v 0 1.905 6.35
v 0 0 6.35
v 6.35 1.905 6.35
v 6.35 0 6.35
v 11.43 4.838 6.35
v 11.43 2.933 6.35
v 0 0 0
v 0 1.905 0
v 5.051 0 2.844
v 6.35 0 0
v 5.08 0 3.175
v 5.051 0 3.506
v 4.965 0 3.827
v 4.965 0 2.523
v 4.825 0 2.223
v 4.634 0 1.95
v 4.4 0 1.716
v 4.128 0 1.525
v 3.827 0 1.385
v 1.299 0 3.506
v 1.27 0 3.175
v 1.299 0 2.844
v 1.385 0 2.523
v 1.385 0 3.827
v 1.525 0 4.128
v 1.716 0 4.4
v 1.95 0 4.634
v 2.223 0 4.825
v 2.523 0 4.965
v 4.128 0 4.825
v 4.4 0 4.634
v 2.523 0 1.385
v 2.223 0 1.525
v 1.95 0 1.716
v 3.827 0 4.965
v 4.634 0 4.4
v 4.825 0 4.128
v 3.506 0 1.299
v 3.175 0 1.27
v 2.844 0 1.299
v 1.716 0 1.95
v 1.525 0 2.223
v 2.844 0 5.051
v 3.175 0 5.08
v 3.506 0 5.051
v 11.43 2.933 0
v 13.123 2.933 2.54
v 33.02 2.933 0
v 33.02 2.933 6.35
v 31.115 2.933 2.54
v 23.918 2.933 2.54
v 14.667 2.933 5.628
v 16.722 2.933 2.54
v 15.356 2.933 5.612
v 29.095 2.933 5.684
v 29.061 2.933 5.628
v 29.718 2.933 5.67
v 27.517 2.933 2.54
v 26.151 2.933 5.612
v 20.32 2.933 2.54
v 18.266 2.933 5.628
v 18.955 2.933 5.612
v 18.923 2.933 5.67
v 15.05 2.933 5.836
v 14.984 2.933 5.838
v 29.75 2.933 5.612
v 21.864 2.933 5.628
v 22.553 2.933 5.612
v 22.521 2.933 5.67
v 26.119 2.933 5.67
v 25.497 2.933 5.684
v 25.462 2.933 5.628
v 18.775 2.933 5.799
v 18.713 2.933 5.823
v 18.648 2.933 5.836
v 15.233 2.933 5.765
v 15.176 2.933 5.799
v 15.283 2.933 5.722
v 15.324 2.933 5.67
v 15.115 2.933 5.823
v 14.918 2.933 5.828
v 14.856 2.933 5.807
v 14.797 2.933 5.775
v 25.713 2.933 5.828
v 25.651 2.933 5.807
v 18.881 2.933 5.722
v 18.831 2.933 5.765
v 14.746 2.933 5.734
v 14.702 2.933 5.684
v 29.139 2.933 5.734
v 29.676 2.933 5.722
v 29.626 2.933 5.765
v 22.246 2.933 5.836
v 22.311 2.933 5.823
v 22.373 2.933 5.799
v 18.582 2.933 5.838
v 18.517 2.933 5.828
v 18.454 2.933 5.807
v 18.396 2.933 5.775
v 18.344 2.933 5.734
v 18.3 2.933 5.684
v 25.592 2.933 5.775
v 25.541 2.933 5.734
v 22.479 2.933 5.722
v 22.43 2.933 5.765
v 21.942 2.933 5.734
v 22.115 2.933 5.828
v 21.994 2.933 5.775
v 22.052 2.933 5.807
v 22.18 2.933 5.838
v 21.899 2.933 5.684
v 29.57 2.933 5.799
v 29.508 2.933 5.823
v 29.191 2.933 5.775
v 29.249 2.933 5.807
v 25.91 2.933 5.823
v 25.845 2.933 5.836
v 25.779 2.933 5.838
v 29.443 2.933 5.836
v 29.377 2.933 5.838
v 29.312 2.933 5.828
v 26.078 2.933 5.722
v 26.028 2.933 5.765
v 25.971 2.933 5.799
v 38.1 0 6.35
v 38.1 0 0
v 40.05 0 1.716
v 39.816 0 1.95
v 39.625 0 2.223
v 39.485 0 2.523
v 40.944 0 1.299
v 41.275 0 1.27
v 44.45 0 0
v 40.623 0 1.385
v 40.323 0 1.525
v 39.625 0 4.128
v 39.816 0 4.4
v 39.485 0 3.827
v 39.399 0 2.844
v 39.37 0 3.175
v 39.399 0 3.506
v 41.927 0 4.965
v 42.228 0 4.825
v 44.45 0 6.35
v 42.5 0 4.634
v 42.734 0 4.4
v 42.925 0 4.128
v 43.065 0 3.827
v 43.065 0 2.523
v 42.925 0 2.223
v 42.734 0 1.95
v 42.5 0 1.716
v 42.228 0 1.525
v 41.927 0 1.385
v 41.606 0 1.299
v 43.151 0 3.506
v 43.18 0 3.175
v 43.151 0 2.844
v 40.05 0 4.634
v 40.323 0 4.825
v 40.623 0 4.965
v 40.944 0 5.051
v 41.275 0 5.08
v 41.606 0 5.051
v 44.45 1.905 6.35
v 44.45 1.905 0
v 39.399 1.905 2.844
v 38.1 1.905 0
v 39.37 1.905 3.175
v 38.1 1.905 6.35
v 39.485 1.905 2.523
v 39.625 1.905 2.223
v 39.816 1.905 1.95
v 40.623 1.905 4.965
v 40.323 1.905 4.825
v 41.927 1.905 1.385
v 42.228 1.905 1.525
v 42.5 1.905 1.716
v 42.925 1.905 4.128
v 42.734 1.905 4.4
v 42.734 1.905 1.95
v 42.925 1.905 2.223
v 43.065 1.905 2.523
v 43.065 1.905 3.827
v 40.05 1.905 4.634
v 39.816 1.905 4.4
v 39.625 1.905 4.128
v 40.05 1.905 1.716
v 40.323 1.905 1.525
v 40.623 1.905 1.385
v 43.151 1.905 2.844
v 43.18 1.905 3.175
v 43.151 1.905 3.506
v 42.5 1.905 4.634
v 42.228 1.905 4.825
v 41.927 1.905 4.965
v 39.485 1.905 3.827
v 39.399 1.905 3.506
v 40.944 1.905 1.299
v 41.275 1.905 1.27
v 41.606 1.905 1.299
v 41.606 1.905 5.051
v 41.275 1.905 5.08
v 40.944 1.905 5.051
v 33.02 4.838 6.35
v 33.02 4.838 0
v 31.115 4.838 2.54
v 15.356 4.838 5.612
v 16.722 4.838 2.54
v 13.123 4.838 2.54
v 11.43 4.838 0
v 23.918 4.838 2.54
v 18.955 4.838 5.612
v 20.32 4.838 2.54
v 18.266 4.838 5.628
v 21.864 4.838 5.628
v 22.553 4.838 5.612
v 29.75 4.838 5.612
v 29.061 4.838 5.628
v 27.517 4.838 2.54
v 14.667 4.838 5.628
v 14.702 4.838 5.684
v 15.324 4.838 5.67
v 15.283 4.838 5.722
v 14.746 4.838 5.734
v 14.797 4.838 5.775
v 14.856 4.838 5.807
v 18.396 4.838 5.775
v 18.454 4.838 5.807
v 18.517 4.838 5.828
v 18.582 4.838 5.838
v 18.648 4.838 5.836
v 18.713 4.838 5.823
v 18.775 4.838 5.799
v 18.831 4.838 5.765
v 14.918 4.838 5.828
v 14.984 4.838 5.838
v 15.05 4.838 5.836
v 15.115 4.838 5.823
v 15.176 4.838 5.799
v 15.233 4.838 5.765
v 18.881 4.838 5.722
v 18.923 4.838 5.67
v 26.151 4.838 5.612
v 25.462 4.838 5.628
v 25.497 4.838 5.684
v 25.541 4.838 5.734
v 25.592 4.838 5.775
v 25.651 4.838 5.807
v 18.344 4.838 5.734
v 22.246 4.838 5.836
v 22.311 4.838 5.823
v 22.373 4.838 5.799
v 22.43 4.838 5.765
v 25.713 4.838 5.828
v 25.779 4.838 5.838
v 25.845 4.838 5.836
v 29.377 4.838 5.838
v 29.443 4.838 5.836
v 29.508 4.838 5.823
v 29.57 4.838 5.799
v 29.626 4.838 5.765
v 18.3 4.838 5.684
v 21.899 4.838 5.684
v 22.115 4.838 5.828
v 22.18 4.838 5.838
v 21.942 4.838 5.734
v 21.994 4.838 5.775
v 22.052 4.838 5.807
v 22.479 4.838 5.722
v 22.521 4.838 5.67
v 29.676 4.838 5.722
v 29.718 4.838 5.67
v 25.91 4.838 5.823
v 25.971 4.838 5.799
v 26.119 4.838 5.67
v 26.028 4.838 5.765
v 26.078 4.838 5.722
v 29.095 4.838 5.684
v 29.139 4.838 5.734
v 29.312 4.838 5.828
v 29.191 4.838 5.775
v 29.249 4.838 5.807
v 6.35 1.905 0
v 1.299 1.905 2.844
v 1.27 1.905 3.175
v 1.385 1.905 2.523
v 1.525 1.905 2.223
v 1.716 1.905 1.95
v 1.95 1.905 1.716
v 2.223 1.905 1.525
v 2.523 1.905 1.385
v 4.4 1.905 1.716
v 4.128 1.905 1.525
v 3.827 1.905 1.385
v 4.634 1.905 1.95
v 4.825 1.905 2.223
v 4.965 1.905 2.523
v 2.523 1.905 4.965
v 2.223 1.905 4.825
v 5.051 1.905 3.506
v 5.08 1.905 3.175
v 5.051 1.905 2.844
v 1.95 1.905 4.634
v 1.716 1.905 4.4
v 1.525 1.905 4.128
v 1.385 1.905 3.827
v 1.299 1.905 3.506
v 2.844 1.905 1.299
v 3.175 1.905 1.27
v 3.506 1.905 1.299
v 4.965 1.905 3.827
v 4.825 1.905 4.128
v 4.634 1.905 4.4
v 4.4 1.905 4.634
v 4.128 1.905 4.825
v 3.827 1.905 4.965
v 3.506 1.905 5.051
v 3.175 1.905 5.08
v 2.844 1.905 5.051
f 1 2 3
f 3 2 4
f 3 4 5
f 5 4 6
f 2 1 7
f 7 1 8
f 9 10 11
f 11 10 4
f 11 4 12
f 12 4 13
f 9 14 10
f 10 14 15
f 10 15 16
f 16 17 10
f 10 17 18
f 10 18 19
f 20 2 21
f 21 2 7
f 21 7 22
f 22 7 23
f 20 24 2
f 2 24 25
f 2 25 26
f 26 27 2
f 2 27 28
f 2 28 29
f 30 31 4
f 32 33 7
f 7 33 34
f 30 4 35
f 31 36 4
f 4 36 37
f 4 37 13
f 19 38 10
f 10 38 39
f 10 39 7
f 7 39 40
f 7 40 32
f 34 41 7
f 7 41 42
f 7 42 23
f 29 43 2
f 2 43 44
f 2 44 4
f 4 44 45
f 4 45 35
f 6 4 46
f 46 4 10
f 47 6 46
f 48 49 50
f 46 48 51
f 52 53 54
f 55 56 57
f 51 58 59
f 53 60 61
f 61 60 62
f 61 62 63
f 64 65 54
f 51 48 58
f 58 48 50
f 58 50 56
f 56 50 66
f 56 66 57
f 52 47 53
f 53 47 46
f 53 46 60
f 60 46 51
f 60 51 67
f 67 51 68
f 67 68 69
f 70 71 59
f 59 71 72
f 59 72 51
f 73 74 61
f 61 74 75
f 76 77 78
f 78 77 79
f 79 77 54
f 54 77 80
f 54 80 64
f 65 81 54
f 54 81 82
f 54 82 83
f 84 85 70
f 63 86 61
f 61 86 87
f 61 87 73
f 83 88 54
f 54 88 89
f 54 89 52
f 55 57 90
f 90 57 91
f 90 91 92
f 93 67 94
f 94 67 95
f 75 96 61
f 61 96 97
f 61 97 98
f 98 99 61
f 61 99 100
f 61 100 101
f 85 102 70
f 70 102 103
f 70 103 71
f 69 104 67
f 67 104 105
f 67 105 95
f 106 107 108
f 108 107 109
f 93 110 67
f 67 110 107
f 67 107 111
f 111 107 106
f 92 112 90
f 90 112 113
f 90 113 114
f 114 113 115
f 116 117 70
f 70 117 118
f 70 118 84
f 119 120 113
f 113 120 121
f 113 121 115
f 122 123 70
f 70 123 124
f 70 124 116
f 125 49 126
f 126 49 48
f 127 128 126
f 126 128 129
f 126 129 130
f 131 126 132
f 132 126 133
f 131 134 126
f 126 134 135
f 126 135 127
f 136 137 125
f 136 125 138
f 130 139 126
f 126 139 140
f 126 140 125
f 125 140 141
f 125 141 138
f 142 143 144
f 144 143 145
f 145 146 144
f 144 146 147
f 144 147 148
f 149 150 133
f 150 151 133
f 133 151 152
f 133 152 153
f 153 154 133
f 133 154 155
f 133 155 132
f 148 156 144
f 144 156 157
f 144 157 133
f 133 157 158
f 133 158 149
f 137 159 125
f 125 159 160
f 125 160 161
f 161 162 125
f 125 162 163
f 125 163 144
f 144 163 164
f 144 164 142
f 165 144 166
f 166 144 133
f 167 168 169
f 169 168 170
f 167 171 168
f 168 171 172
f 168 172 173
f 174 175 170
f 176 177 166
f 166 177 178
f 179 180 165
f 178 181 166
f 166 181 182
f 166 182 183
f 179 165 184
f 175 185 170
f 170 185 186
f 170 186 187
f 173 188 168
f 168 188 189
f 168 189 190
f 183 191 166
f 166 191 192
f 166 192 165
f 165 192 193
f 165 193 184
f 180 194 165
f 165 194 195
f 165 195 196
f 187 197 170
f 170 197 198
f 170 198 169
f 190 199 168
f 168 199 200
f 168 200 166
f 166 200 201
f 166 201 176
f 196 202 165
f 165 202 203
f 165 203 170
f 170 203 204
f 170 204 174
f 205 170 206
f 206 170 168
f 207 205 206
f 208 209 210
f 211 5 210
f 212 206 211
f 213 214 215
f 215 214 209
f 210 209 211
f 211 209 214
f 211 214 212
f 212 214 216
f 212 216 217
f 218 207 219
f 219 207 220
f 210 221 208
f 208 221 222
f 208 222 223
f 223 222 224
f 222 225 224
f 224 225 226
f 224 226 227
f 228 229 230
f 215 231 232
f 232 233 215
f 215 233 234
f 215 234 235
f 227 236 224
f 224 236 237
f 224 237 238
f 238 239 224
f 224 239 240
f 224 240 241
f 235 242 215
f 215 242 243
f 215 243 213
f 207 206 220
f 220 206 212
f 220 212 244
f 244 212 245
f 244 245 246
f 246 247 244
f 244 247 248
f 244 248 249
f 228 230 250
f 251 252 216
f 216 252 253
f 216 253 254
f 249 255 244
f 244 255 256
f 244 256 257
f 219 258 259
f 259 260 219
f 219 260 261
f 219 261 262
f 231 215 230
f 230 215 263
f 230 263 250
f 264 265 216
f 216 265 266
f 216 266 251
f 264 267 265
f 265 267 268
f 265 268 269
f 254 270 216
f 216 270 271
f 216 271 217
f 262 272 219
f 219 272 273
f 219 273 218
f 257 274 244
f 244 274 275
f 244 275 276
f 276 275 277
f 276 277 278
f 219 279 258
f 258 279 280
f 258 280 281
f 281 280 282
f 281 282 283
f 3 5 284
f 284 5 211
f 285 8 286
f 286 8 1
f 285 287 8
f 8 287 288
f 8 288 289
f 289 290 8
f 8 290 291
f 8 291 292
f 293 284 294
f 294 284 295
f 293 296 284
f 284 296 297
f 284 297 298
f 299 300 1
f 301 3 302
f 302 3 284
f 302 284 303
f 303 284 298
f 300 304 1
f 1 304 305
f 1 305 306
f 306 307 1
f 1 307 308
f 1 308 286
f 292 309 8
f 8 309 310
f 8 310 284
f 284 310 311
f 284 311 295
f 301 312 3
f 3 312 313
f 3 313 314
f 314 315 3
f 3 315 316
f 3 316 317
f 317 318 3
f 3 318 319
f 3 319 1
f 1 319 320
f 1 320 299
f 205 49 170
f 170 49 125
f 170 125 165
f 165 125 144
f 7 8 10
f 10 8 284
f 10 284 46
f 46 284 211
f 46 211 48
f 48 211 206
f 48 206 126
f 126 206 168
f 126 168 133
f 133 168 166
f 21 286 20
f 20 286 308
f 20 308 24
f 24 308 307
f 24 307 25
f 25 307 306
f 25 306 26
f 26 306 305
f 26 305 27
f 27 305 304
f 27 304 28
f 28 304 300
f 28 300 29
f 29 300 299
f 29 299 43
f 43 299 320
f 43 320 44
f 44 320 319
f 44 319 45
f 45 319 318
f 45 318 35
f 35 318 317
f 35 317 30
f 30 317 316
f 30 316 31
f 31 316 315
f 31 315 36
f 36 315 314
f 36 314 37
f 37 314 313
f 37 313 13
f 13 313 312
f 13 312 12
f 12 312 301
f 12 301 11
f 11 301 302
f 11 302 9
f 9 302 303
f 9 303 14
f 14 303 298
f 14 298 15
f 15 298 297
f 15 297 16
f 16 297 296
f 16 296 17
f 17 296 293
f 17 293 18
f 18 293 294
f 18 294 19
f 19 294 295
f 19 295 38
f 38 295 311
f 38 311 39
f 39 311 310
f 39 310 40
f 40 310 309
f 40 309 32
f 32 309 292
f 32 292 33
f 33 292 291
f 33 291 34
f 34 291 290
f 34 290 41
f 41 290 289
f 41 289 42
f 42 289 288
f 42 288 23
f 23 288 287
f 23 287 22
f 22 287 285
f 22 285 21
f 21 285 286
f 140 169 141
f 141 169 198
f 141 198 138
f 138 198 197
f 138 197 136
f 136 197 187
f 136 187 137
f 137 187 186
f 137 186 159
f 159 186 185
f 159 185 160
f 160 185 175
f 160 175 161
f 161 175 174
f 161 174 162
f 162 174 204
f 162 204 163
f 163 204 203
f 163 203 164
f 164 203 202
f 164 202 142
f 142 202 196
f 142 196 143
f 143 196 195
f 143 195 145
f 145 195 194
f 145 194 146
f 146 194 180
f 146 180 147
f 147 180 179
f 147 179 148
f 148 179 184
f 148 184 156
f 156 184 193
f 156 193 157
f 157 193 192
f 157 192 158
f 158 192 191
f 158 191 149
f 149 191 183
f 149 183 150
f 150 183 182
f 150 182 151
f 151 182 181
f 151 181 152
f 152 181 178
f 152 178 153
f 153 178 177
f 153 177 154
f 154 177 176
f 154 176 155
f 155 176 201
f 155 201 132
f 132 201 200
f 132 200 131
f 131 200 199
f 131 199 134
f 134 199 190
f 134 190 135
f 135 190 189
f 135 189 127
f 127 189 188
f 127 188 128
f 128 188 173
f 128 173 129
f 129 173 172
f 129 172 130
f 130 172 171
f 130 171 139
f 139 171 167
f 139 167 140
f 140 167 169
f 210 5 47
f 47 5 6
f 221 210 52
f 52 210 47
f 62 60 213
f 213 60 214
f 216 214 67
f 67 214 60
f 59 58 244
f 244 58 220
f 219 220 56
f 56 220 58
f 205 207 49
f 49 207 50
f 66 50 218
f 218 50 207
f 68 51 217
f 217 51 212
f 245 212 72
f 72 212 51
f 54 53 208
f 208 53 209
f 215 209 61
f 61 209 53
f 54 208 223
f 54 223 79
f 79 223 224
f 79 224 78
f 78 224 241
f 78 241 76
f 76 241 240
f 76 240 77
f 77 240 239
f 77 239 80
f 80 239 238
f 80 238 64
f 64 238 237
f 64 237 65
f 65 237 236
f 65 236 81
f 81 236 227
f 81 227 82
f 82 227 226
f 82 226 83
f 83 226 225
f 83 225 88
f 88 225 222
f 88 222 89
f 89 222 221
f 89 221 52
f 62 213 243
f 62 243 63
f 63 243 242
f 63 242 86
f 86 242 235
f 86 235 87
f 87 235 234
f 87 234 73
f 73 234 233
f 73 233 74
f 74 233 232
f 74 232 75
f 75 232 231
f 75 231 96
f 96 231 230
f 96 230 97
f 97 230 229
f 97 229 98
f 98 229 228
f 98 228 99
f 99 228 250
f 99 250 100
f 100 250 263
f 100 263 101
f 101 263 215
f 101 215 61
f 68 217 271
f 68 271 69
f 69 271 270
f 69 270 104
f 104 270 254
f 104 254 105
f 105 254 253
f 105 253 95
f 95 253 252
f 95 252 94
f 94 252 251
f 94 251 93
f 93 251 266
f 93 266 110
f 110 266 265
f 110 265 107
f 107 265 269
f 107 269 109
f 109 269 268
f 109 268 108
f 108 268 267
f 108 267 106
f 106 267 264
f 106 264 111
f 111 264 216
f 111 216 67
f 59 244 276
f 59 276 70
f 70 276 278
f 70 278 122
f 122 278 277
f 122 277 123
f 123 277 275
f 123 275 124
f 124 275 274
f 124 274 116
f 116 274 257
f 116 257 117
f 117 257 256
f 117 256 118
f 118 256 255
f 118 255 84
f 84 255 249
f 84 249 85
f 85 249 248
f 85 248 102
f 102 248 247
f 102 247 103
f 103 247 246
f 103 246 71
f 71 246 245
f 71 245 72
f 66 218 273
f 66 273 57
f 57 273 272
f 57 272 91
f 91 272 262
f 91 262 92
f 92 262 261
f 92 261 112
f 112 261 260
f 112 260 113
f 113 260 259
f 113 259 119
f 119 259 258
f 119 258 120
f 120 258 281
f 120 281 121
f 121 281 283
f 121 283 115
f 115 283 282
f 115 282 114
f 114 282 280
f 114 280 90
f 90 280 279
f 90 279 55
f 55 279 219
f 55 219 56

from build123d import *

# Parameters (mm, degrees)
BASE_EXTRUDE_DEPTH = 6.35
HOLE_CUTS_REACH    = 47.161
SKETCH2_R          = 1.905
TEETH_CUTS_REACH   = 47.161
TEETH_FILLET_R     = 0.381


with BuildPart() as part:
    # Sketch1 → Base Extrude (new body)
    with BuildSketch(Plane.XY):
        Polygon((0, 0), (6.35, 0), (11.43, 2.932939367), (33.02, 2.932939367), (38.1, 0), (44.45, 0), (44.45, 1.905), (38.1, 1.905), (33.02, 4.837939367), (11.43, 4.837939367), (6.35, 1.905), (0, 1.905), align=None)
    extrude(amount=BASE_EXTRUDE_DEPTH)

    # Sketch2 → Hole Cuts (cut, up to next)
    with BuildSketch(Plane(origin=(0, 4.837939367, 0), x_dir=(1, 0, 0), z_dir=(0, 1, 0)), mode=Mode.PRIVATE) as hole_cuts_sk1:
        with Locations(Location((41.275, -3.175, 0), (0, 0, 270))):
            Circle(SKETCH2_R)
    hole_cuts_tool1 = extrude(hole_cuts_sk1.sketch, amount=-HOLE_CUTS_REACH, mode=Mode.PRIVATE) & part.part
    # Sketch2 → Hole Cuts (cut, up to next)
    with BuildSketch(Plane(origin=(0, 4.837939367, 0), x_dir=(1, 0, 0), z_dir=(0, 1, 0)), mode=Mode.PRIVATE) as hole_cuts_sk2:
        with Locations(Location((3.175, -3.175, 0), (0, 0, 180))):
            Circle(SKETCH2_R)
    hole_cuts_tool2 = extrude(hole_cuts_sk2.sketch, amount=-HOLE_CUTS_REACH, mode=Mode.PRIVATE) & part.part
    add(hole_cuts_tool1.solids().sort_by_distance((41.275, 4.837939, 3.175))[0], mode=Mode.SUBTRACT)
    add(hole_cuts_tool2.solids().sort_by_distance((3.175, 4.837939, 3.175))[0], mode=Mode.SUBTRACT)

    # Sketch3 → Teeth Cuts (cut, up to next)
    with BuildSketch(Plane(origin=(0, 4.837939367, 0), x_dir=(1, 0, 0), z_dir=(0, 1, 0)), mode=Mode.PRIVATE) as teeth_cuts_sk1:
        Polygon((25.823333333, -6.35), (29.421666667, -6.35), (27.516666667, -2.54), align=None)
    teeth_cuts_tool1 = extrude(teeth_cuts_sk1.sketch, amount=-TEETH_CUTS_REACH, mode=Mode.PRIVATE) & part.part
    # Sketch3 → Teeth Cuts (cut, up to next)
    with BuildSketch(Plane(origin=(0, 4.837939367, 0), x_dir=(1, 0, 0), z_dir=(0, 1, 0)), mode=Mode.PRIVATE) as teeth_cuts_sk2:
        Polygon((29.421666667, -6.35), (33.02, -6.35), (31.115, -2.54), align=None)
    teeth_cuts_tool2 = extrude(teeth_cuts_sk2.sketch, amount=-TEETH_CUTS_REACH, mode=Mode.PRIVATE) & part.part
    # Sketch3 → Teeth Cuts (cut, up to next)
    with BuildSketch(Plane(origin=(0, 4.837939367, 0), x_dir=(1, 0, 0), z_dir=(0, 1, 0)), mode=Mode.PRIVATE) as teeth_cuts_sk3:
        Polygon((22.225, -6.35), (25.823333333, -6.35), (23.918333333, -2.54), align=None)
    teeth_cuts_tool3 = extrude(teeth_cuts_sk3.sketch, amount=-TEETH_CUTS_REACH, mode=Mode.PRIVATE) & part.part
    # Sketch3 → Teeth Cuts (cut, up to next)
    with BuildSketch(Plane(origin=(0, 4.837939367, 0), x_dir=(1, 0, 0), z_dir=(0, 1, 0)), mode=Mode.PRIVATE) as teeth_cuts_sk4:
        Polygon((18.626666667, -6.35), (22.225, -6.35), (20.32, -2.54), align=None)
    teeth_cuts_tool4 = extrude(teeth_cuts_sk4.sketch, amount=-TEETH_CUTS_REACH, mode=Mode.PRIVATE) & part.part
    # Sketch3 → Teeth Cuts (cut, up to next)
    with BuildSketch(Plane(origin=(0, 4.837939367, 0), x_dir=(1, 0, 0), z_dir=(0, 1, 0)), mode=Mode.PRIVATE) as teeth_cuts_sk5:
        Polygon((15.028333333, -6.35), (18.626666667, -6.35), (16.721666667, -2.54), align=None)
    teeth_cuts_tool5 = extrude(teeth_cuts_sk5.sketch, amount=-TEETH_CUTS_REACH, mode=Mode.PRIVATE) & part.part
    # Sketch3 → Teeth Cuts (cut, up to next)
    with BuildSketch(Plane(origin=(0, 4.837939367, 0), x_dir=(1, 0, 0), z_dir=(0, 1, 0)), mode=Mode.PRIVATE) as teeth_cuts_sk6:
        Polygon((11.43, -6.35), (15.028333333, -6.35), (13.123333333, -2.54), align=None)
    teeth_cuts_tool6 = extrude(teeth_cuts_sk6.sketch, amount=-TEETH_CUTS_REACH, mode=Mode.PRIVATE) & part.part
    add(teeth_cuts_tool1.solids().sort_by_distance((27.587222, 4.837939, 5.08))[0], mode=Mode.SUBTRACT)
    add(teeth_cuts_tool2.solids().sort_by_distance((31.185556, 4.837939, 5.08))[0], mode=Mode.SUBTRACT)
    add(teeth_cuts_tool3.solids().sort_by_distance((23.988889, 4.837939, 5.08))[0], mode=Mode.SUBTRACT)
    add(teeth_cuts_tool4.solids().sort_by_distance((20.390556, 4.837939, 5.08))[0], mode=Mode.SUBTRACT)
    add(teeth_cuts_tool5.solids().sort_by_distance((16.792222, 4.837939, 5.08))[0], mode=Mode.SUBTRACT)
    add(teeth_cuts_tool6.solids().sort_by_distance((13.193889, 4.837939, 5.08))[0], mode=Mode.SUBTRACT)

    # Teeth Fillet
    teeth_fillet_edges = [part.edges().sort_by_distance(p)[0] for p in [
        (29.421666667, 3.885439367, 6.35),
        (25.823333333, 3.885439367, 6.35),
        (18.626666667, 3.885439367, 6.35),
        (22.225, 3.885439367, 6.35),
        (15.028333333, 3.885439367, 6.35),
    ]]
    fillet(teeth_fillet_edges, radius=TEETH_FILLET_R)


solid = part.part
